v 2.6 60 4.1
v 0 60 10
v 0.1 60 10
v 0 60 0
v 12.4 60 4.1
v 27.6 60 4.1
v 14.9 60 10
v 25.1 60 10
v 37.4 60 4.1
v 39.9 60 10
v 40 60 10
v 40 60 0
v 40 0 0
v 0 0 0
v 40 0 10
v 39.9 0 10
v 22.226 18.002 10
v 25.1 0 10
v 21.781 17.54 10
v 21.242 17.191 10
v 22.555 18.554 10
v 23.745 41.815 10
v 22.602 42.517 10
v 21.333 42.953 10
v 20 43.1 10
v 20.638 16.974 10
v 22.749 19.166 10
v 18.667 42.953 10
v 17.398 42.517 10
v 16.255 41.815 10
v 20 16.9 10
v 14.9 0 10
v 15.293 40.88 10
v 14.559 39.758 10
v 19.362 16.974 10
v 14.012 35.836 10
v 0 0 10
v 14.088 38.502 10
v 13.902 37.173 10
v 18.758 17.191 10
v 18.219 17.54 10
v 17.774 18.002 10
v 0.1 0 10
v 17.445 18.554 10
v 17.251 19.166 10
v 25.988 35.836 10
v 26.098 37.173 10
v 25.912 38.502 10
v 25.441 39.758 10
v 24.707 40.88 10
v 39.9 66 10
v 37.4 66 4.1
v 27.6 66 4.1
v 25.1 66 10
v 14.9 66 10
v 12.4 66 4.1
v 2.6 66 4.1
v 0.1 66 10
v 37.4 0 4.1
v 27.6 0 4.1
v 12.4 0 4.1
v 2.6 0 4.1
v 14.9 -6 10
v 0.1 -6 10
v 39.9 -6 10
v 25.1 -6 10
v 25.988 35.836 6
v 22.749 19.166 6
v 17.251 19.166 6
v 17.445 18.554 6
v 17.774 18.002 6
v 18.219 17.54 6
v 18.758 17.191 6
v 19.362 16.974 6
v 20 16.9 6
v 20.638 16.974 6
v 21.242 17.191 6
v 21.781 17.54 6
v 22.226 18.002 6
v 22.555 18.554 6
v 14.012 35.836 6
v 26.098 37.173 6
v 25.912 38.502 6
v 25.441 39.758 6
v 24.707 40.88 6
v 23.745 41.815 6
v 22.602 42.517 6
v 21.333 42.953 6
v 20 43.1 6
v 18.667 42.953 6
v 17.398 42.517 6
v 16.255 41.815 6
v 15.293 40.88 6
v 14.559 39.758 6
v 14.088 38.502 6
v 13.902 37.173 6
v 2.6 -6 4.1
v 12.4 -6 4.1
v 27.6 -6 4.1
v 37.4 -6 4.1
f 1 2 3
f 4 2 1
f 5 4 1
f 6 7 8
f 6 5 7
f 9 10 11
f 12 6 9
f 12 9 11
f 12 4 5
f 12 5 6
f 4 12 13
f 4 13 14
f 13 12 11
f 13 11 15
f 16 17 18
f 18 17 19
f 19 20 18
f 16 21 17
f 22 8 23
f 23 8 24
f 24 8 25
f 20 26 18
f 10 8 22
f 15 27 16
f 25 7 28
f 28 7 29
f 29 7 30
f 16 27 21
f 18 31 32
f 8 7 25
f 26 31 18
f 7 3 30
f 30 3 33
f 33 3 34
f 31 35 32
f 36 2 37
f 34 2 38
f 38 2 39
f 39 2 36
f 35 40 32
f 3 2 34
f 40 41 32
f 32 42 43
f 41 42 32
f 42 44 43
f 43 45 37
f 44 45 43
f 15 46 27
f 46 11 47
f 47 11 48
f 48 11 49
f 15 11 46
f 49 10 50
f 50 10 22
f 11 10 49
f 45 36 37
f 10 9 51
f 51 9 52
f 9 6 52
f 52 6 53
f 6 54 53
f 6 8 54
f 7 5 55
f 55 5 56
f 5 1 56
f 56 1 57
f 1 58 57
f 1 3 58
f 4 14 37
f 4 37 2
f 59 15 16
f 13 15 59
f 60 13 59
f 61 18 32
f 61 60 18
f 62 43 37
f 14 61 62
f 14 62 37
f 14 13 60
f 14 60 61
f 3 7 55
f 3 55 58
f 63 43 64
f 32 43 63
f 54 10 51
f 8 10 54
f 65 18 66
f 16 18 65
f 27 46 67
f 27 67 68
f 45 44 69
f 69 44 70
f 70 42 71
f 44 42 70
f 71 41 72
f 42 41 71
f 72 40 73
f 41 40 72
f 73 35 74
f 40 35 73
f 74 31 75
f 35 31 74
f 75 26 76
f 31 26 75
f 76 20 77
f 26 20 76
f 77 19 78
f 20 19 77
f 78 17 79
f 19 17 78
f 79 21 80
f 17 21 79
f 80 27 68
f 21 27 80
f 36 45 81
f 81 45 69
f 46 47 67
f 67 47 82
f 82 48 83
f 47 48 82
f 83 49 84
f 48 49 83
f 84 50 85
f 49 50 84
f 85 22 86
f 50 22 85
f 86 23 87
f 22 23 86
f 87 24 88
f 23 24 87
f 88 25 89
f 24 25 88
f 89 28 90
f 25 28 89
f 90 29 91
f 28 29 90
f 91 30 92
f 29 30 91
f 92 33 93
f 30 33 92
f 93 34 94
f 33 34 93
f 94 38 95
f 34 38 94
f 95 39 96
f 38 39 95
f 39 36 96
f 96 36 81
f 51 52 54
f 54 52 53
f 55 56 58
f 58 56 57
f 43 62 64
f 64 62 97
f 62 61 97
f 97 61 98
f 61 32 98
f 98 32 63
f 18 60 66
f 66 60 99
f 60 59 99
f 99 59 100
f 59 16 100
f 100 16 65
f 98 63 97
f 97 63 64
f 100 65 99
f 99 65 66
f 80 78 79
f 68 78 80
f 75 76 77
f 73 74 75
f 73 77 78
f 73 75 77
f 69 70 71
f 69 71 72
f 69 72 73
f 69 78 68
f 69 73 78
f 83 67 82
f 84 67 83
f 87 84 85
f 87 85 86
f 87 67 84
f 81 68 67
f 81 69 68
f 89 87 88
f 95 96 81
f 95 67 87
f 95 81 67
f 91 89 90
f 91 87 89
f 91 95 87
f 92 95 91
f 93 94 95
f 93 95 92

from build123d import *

# Parameters (mm, degrees)
SKETCH_W     = 40
SKETCH_H     = 60
PAD_DEPTH    = 10
PAD001_DEPTH = 6
PAD002_DEPTH = 6
POCKET_DEPTH = 4


with BuildPart() as part:
    # Sketch → Pad (new body)
    with BuildSketch(Plane.XY):
        with Locations((20, 30)):
            Rectangle(SKETCH_W, SKETCH_H)
    extrude(amount=PAD_DEPTH)

    # Sketch001 (on Face3 of Pad) → Pad001 (join)
    with BuildSketch(Plane.XZ):
        Polygon((0.1, 10), (14.9, 10), (12.4, 4.1), (2.6, 4.1), align=None)
        Polygon((25.1, 10), (39.9, 10), (37.4, 4.1), (27.6, 4.1), align=None)
    extrude(amount=PAD001_DEPTH)

    # Sketch002 (on Face1 of Pad001) → Pad002 (join)
    with BuildSketch(Plane(origin=(0, 60, 0), x_dir=(-1, 0, 0), z_dir=(0, 1, 0))):
        Polygon((-39.9, 10), (-25.1, 10), (-27.6, 4.1), (-37.4, 4.1), align=None)
        Polygon((-14.9, 10), (-0.1, 10), (-2.6, 4.1), (-12.4, 4.1), align=None)
    extrude(amount=PAD002_DEPTH)

    # Sketch003 (on Face4 of Pad002) → Pocket (cut)
    with BuildSketch(Plane.XY.offset(10)):
        with BuildLine():
            ThreePointArc((25.987994, 35.836416), (20, 43.1), (14.012006, 35.836416))
            Line((14.012006, 35.836416), (17.251413, 19.165896))
            ThreePointArc((17.251413, 19.165896), (20, 16.9), (22.748587, 19.165896))
            Line((25.987994, 35.836416), (22.748587, 19.165896))
        make_face()
    extrude(amount=-POCKET_DEPTH, mode=Mode.SUBTRACT)


solid = part.part
